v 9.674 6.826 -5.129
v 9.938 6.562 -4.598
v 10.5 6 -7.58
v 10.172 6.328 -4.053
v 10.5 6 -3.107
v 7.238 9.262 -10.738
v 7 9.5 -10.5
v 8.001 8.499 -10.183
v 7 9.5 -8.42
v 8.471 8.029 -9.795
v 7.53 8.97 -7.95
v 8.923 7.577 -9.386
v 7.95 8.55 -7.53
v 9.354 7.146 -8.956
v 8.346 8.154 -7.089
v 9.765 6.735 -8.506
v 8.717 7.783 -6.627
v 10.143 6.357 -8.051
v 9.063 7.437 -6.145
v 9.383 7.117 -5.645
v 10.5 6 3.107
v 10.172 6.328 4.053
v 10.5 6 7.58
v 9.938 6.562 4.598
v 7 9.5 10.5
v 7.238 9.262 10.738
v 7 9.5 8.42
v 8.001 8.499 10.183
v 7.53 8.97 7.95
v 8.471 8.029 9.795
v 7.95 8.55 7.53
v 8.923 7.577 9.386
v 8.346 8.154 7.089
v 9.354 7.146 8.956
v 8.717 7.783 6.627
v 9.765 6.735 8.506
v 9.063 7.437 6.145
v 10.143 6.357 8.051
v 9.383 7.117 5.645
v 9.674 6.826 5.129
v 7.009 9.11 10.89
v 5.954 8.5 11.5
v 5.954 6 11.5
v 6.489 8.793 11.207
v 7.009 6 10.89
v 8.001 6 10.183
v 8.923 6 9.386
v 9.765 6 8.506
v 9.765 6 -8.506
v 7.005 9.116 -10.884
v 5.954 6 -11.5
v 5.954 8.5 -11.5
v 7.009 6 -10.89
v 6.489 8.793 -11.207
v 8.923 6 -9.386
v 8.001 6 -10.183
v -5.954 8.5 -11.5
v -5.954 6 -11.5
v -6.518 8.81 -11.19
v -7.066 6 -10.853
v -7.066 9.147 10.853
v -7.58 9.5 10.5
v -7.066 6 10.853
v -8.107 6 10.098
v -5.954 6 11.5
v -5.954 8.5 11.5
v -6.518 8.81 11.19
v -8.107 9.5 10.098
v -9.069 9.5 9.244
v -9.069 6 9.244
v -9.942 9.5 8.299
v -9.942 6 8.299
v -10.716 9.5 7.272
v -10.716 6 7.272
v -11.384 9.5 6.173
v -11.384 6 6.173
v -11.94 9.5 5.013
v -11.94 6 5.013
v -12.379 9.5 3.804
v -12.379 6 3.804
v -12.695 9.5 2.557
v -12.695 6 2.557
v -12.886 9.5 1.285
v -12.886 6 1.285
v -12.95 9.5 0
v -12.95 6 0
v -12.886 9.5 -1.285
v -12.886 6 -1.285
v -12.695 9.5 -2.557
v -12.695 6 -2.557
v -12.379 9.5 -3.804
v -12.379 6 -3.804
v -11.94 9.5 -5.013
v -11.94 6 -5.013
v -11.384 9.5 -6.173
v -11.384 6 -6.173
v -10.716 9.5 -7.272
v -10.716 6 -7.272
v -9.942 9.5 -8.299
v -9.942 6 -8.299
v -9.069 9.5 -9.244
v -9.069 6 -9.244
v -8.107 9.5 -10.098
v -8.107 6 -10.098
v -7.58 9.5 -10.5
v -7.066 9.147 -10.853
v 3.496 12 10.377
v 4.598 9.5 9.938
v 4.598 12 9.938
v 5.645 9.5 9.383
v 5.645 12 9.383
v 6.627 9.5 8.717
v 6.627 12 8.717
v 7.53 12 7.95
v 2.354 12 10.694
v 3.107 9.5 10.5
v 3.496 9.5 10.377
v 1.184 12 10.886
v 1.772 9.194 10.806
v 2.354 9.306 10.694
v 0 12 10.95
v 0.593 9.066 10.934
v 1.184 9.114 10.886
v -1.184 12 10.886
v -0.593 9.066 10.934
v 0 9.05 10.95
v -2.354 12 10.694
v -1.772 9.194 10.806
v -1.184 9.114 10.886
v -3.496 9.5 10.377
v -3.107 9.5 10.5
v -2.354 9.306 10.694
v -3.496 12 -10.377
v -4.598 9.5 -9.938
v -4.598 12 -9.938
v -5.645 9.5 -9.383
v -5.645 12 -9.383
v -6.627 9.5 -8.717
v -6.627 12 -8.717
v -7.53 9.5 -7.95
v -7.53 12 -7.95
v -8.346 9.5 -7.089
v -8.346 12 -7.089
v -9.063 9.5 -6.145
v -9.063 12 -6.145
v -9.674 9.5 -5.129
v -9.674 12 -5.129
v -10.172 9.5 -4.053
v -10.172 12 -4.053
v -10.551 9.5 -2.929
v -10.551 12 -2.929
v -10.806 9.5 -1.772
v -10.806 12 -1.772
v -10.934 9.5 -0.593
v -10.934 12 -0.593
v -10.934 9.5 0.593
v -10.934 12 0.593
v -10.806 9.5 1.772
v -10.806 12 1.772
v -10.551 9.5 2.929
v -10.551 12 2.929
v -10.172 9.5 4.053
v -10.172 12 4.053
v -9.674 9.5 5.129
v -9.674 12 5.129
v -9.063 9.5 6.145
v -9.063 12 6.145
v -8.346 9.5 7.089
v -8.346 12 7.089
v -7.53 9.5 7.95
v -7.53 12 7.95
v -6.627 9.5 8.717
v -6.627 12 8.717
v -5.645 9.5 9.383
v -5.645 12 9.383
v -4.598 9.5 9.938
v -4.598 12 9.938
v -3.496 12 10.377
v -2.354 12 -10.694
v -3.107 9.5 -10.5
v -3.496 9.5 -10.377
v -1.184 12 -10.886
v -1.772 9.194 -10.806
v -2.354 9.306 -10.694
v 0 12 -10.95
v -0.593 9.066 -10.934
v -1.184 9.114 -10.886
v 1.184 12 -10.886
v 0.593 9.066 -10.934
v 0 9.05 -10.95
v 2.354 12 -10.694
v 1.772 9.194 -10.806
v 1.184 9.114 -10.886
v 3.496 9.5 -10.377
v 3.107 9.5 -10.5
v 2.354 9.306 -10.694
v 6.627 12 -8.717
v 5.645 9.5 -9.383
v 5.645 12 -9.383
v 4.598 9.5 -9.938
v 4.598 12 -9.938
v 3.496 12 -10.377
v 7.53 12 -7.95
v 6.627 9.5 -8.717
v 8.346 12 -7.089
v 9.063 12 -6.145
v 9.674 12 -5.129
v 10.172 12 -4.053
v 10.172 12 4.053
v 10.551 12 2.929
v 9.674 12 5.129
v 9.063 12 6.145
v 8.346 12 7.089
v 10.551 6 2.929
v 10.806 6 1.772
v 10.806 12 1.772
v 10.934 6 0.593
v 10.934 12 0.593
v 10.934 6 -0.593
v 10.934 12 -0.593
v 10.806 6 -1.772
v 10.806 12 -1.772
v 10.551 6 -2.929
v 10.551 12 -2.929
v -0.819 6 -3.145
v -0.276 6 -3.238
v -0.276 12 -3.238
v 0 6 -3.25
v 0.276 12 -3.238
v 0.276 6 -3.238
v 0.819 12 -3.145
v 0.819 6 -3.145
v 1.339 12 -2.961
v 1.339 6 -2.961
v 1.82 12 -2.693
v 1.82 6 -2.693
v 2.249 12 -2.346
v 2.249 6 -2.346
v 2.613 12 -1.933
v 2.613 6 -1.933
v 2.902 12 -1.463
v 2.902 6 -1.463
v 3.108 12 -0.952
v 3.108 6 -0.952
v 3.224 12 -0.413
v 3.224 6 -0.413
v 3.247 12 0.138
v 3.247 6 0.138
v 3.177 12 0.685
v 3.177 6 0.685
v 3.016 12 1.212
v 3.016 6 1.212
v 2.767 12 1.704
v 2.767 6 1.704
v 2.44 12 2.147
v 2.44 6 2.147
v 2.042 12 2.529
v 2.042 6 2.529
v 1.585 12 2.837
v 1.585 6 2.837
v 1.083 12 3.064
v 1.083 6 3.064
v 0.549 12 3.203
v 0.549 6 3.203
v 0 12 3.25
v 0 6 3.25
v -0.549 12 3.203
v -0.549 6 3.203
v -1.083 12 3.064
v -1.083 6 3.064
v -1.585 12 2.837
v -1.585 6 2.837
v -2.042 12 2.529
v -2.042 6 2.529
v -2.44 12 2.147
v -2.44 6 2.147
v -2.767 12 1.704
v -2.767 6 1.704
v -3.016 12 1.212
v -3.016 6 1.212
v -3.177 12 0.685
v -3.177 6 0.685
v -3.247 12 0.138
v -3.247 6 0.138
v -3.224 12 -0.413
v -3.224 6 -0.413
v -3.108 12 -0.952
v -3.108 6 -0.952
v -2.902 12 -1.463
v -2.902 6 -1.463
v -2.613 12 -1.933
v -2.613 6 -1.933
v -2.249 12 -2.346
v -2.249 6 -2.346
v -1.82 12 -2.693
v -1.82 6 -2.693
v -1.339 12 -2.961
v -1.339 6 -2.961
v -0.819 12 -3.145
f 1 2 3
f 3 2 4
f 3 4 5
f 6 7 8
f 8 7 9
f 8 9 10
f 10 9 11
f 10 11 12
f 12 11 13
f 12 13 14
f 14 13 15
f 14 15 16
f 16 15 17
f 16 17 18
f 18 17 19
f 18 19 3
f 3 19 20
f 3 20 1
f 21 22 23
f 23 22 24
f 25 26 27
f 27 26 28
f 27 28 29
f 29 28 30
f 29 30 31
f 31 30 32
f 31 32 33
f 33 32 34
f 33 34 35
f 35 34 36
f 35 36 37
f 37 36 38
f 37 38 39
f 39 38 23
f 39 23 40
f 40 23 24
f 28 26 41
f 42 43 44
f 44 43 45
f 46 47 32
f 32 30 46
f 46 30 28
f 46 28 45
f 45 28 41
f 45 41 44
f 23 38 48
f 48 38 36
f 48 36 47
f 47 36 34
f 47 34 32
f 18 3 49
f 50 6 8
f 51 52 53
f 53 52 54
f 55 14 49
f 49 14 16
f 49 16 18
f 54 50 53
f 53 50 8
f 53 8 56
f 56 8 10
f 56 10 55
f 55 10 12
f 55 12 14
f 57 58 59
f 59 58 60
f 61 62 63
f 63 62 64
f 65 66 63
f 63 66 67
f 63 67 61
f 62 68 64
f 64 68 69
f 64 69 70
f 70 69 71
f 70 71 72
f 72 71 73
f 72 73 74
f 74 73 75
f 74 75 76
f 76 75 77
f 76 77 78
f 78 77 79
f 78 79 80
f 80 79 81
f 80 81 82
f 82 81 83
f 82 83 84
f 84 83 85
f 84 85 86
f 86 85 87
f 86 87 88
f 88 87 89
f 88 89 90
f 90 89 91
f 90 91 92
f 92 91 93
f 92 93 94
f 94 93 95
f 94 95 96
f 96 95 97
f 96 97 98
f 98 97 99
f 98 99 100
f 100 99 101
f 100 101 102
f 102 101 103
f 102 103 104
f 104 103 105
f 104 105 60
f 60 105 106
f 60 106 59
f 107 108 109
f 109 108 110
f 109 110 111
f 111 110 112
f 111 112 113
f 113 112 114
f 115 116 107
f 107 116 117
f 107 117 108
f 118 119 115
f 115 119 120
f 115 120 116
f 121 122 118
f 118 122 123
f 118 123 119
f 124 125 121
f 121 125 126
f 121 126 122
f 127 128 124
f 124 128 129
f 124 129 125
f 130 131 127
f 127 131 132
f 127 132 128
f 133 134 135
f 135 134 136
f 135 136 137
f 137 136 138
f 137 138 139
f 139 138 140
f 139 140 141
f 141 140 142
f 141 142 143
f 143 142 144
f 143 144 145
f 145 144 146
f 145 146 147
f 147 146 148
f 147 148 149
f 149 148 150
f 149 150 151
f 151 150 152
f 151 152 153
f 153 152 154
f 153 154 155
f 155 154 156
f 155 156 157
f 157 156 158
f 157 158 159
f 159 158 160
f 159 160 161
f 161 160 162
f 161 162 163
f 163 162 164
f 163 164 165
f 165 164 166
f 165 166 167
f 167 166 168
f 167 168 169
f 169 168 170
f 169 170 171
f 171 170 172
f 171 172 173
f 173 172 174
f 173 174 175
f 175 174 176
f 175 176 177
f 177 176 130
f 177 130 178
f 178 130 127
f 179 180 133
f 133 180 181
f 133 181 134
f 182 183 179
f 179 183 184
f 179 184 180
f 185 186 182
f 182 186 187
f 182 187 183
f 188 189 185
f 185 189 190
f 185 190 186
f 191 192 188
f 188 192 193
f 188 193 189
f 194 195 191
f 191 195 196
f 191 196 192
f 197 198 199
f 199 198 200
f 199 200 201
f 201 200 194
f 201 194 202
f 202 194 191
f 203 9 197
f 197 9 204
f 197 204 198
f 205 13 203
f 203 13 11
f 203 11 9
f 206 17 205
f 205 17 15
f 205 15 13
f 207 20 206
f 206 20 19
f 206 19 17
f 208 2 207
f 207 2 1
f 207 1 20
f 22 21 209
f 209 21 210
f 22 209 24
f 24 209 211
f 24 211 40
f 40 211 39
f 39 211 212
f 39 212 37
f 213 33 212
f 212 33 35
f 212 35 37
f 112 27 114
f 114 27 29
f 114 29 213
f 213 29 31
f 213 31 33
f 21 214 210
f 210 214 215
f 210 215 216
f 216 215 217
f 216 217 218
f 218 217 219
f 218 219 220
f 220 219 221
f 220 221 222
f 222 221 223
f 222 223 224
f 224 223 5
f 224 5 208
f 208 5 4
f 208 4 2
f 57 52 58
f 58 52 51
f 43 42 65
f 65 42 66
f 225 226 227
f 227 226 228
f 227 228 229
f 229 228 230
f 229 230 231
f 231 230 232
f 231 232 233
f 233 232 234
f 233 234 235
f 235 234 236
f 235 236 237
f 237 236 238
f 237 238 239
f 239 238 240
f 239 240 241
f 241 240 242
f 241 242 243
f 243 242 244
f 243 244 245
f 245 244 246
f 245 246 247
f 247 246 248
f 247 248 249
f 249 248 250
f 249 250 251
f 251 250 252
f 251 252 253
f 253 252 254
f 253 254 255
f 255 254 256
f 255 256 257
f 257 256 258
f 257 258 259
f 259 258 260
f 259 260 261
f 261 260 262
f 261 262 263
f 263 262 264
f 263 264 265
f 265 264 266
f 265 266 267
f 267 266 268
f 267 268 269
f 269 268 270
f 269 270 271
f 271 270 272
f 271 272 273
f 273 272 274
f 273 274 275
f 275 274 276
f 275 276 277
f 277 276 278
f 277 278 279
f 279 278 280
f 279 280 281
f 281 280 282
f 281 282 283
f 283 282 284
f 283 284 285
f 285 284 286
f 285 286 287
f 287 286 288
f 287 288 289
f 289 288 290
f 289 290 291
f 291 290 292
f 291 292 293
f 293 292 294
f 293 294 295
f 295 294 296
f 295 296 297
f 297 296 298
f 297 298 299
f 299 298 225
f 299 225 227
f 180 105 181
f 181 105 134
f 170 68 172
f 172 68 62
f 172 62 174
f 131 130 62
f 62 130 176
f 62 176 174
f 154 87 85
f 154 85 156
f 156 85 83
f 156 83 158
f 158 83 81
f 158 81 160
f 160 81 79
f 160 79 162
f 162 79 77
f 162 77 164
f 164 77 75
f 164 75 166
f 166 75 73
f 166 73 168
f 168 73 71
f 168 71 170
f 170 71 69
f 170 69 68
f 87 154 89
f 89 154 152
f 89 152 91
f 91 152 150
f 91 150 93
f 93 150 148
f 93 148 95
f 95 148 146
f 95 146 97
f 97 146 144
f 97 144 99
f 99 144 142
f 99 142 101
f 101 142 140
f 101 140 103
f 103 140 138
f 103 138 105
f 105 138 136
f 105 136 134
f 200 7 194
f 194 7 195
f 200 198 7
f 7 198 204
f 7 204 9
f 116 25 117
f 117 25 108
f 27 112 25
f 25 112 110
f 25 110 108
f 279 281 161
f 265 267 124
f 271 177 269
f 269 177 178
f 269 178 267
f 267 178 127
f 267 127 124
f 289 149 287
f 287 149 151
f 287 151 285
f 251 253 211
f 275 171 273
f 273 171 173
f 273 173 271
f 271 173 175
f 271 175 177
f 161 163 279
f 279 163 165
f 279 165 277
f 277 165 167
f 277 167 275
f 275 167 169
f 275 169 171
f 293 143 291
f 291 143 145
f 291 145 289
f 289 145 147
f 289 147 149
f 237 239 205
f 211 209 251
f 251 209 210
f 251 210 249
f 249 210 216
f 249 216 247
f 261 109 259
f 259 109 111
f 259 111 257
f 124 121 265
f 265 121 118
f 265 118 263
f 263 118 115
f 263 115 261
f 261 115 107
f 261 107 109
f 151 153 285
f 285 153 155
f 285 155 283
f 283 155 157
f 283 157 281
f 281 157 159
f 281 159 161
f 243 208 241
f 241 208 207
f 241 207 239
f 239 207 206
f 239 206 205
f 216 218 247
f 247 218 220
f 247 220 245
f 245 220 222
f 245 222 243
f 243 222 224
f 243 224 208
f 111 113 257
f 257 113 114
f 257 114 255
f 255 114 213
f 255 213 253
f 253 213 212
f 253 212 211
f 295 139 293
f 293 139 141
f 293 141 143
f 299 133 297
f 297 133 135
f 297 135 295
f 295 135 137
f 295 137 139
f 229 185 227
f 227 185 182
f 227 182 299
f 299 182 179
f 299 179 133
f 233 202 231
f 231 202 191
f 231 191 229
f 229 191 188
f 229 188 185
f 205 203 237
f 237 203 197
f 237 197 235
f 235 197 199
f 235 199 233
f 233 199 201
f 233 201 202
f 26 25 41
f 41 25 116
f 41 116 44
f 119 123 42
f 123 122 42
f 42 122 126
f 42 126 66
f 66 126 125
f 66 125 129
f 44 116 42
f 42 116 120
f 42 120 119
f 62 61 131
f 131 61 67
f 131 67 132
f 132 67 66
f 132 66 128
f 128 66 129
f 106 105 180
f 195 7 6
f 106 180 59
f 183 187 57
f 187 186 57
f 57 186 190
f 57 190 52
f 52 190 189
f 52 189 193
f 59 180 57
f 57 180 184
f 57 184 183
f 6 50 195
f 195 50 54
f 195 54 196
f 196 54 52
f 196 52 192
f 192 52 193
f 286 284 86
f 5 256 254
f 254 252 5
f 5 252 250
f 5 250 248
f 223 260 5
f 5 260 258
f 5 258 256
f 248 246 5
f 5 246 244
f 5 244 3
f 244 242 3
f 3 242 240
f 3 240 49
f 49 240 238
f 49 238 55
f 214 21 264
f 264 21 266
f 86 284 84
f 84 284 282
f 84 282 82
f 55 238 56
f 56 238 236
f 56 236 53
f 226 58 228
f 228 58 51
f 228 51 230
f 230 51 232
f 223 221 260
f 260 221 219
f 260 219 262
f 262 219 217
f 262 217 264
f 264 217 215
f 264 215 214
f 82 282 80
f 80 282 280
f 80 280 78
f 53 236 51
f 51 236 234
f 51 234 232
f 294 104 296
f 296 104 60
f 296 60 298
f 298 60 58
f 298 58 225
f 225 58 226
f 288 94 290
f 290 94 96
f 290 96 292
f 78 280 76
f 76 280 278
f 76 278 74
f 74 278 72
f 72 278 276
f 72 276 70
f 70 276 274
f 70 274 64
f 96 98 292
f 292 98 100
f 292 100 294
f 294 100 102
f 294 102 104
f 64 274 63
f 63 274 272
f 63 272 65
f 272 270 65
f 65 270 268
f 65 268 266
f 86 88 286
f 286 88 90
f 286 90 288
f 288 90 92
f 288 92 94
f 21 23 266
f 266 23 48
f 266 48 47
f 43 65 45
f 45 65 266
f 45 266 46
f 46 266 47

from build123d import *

# Parameters (mm, degrees)
SKETCH1_R               = 10.95
SKETCH1_R_2             = 6.05
BOSS_EXTRUDE1_DEPTH     = 2
BOSS_EXTRUDE2_START     = 12
SKETCH1_3_R             = 10.95
SKETCH1_3_R_2           = 6.05
BOSS_EXTRUDE2_DEPTH     = 12
BOSS_EXTRUDE3_START     = -2.5
SKETCH2_R               = 12.95
SKETCH2_R_2             = 10.95
BOSS_EXTRUDE3_DEPTH     = 11.5
CUT_EXTRUDE1_DEPTH      = 22.895319134
CUT_EXTRUDE1_DEPTH_BACK = 22.895319134
SKETCH3_W               = 100
SKETCH3_H               = 23
CUT_EXTRUDE3_DEPTH      = 22.07018035
CUT_EXTRUDE3_DEPTH_BACK = 22.07018035
BOSS_EXTRUDE4_START     = 12
SKETCH1_5_R             = 10.95
SKETCH1_5_R_2           = 6.05
BOSS_EXTRUDE4_DEPTH     = 12
CHAMFER1_SIZE           = 1
BOSS_EXTRUDE5_START     = 12
SKETCH7_R               = 6.05
BOSS_EXTRUDE5_DEPTH     = 12
CUT_EXTRUDE5_DEPTH      = 22.07018035
CUT_EXTRUDE5_DEPTH_BACK = 22.07018035
SKETCH6_R               = 3.25
CUT_EXTRUDE7_START      = -8
CUT_EXTRUDE7_DEPTH      = 8


with BuildPart() as part:
    # Sketch1 → Boss-Extrude1 (new body)
    # profile 1 of 2: a face of its own
    with BuildSketch(Plane(origin=(0, 0, 0), x_dir=(1, 0, 0), z_dir=(0, 1, 0))):
        with Locations(Location((0, 0, 0), (0, 0, 270))):
            Circle(SKETCH1_R)
        Circle(SKETCH1_R_2, mode=Mode.SUBTRACT)
    # profile 2 of 2: a face of its own
    with BuildSketch(Plane(origin=(0, 0, 0), x_dir=(1, 0, 0), z_dir=(0, 1, 0))):
        Circle(SKETCH1_R_2)
    extrude(amount=-BOSS_EXTRUDE1_DEPTH)

    # Sketch1<3> → Boss-Extrude2 (add)
    with BuildSketch(Plane(origin=(0, 0, 0), x_dir=(1, 0, 0), z_dir=(0, 1, 0)).offset(BOSS_EXTRUDE2_START)):
        with Locations(Location((0, 0, 0), (0, 0, 270))):
            Circle(SKETCH1_3_R)
        with Locations(Location((0, 0, 0), (0, 0, 270))):
            Circle(SKETCH1_3_R_2, mode=Mode.SUBTRACT)
    extrude(amount=-BOSS_EXTRUDE2_DEPTH)

    # Sketch2 → Boss-Extrude3 (add)
    with BuildSketch(Plane(origin=(0, 12, 0), x_dir=(1, 0, 0), z_dir=(0, 1, 0)).offset(BOSS_EXTRUDE3_START)):
        with Locations(Location((0, 0, 0), (0, 0, 270))):
            Circle(SKETCH2_R)
        with Locations(Location((0, 0, 0), (0, 0, 270))):
            Circle(SKETCH2_R_2, mode=Mode.SUBTRACT)
    extrude(amount=-BOSS_EXTRUDE3_DEPTH)

    # Sketch3 → Cut-Extrude1 (cut, two sides: drawn at the far end of the back side and taken through both)
    with BuildSketch(Plane(origin=(0, 0, 0), x_dir=(1, 0, 0), z_dir=(0, 1, 0)).offset(-CUT_EXTRUDE1_DEPTH_BACK)):
        with Locations((0, -23)):
            Rectangle(SKETCH3_W, SKETCH3_H)
        with Locations((0, 23)):
            Rectangle(SKETCH3_W, SKETCH3_H)
    extrude(amount=CUT_EXTRUDE1_DEPTH + CUT_EXTRUDE1_DEPTH_BACK, mode=Mode.SUBTRACT)

    # Sketch4 → Cut-Extrude3 (cut, two sides: drawn at the far end of the back side and taken through both)
    with BuildSketch(Plane.XY.offset(-CUT_EXTRUDE3_DEPTH_BACK)):
        Polygon((13, 12), (4.5, 12), (13, 3.5), align=None)
    extrude(amount=CUT_EXTRUDE3_DEPTH + CUT_EXTRUDE3_DEPTH_BACK, mode=Mode.SUBTRACT)

    # Sketch1<5> → Boss-Extrude4 (add)
    with BuildSketch(Plane(origin=(0, 0, 0), x_dir=(1, 0, 0), z_dir=(0, 1, 0)).offset(BOSS_EXTRUDE4_START)):
        with Locations(Location((0, 0, 0), (0, 0, 270))):
            Circle(SKETCH1_5_R)
        with Locations(Location((0, 0, 0), (0, 0, 270))):
            Circle(SKETCH1_5_R_2, mode=Mode.SUBTRACT)
    extrude(amount=-BOSS_EXTRUDE4_DEPTH)

    # Chamfer1
    # the kernel refuses this chamfer: 1 mm, written as the material it takes off along each edge
    with BuildSketch(Plane(origin=(8.525883186, 9.5, 11.5), x_dir=(0, 0.027495876610585647, -0.9996219169112968), z_dir=(-1, 0, 0))) as chamfer1_piece_1_section:
        Polygon((CHAMFER1_SIZE * 0.999621916911, CHAMFER1_SIZE * 0.0274958766106), (-CHAMFER1_SIZE * 0.0274958766106, CHAMFER1_SIZE * 0.999621916911), (0, 0), align=None)
    chamfer1_piece_1 = extrude(amount=17.051766372, mode=Mode.PRIVATE)
    chamfer1_piece_1 = chamfer1_piece_1 - Plane(origin=(0, 9.159933663, 0), x_dir=(0, 0, 1), z_dir=(0, 1, 0)) * Cylinder(10.95, 39, mode=Mode.PRIVATE)
    add(chamfer1_piece_1, mode=Mode.SUBTRACT)
    with BuildSketch(Plane(origin=(8.525883186, 9.5, -11.5), x_dir=(0, 0.027495876610585647, 0.9996219169112968), z_dir=(-1, 0, 0))) as chamfer1_piece_2_section:
        Polygon((CHAMFER1_SIZE * 0.999621916911, -CHAMFER1_SIZE * 0.0274958766106), (-CHAMFER1_SIZE * 0.0274958766106, -CHAMFER1_SIZE * 0.999621916911), (0, 0), align=None)
    chamfer1_piece_2 = extrude(amount=17.051766372, mode=Mode.PRIVATE)
    chamfer1_piece_2 = chamfer1_piece_2 - Plane(origin=(0, 9.159933662, 0), x_dir=(0, 0, 1), z_dir=(0, 1, 0)) * Cylinder(10.95, 39, mode=Mode.PRIVATE)
    add(chamfer1_piece_2, mode=Mode.SUBTRACT)

    # Sketch7 → Boss-Extrude5 (add)
    with BuildSketch(Plane(origin=(0, 0, 0), x_dir=(1, 0, 0), z_dir=(0, 1, 0)).offset(BOSS_EXTRUDE5_START)):
        Circle(SKETCH7_R)
    extrude(amount=-BOSS_EXTRUDE5_DEPTH)

    # Sketch6 → Cut-Extrude5 (cut, two sides: drawn at the far end of the back side and taken through both)
    with BuildSketch(Plane(origin=(0, 0, 0), x_dir=(1, 0, 0), z_dir=(0, 1, 0)).offset(-CUT_EXTRUDE5_DEPTH_BACK)):
        with Locations(Location((0, 0, 0), (0, 0, 270))):
            Circle(SKETCH6_R)
    extrude(amount=CUT_EXTRUDE5_DEPTH + CUT_EXTRUDE5_DEPTH_BACK, mode=Mode.SUBTRACT)

    # Sketch9 → Cut-Extrude7 (cut)
    with BuildSketch(Plane.XZ.offset(2).offset(CUT_EXTRUDE7_START)):
        with BuildLine():
            Line((5.954200198, 11.5), (-5.954200198, 11.5))
            ThreePointArc((-5.954200198, 11.5), (-12.95, 0), (-5.954200198, -11.5))
            Line((-5.954200198, -11.5), (5.954200198, -11.5))
            ThreePointArc((5.954200198, -11.5), (12.95, 0), (5.954200198, 11.5))
        make_face()
    extrude(amount=CUT_EXTRUDE7_DEPTH, mode=Mode.SUBTRACT)


solid = part.part
